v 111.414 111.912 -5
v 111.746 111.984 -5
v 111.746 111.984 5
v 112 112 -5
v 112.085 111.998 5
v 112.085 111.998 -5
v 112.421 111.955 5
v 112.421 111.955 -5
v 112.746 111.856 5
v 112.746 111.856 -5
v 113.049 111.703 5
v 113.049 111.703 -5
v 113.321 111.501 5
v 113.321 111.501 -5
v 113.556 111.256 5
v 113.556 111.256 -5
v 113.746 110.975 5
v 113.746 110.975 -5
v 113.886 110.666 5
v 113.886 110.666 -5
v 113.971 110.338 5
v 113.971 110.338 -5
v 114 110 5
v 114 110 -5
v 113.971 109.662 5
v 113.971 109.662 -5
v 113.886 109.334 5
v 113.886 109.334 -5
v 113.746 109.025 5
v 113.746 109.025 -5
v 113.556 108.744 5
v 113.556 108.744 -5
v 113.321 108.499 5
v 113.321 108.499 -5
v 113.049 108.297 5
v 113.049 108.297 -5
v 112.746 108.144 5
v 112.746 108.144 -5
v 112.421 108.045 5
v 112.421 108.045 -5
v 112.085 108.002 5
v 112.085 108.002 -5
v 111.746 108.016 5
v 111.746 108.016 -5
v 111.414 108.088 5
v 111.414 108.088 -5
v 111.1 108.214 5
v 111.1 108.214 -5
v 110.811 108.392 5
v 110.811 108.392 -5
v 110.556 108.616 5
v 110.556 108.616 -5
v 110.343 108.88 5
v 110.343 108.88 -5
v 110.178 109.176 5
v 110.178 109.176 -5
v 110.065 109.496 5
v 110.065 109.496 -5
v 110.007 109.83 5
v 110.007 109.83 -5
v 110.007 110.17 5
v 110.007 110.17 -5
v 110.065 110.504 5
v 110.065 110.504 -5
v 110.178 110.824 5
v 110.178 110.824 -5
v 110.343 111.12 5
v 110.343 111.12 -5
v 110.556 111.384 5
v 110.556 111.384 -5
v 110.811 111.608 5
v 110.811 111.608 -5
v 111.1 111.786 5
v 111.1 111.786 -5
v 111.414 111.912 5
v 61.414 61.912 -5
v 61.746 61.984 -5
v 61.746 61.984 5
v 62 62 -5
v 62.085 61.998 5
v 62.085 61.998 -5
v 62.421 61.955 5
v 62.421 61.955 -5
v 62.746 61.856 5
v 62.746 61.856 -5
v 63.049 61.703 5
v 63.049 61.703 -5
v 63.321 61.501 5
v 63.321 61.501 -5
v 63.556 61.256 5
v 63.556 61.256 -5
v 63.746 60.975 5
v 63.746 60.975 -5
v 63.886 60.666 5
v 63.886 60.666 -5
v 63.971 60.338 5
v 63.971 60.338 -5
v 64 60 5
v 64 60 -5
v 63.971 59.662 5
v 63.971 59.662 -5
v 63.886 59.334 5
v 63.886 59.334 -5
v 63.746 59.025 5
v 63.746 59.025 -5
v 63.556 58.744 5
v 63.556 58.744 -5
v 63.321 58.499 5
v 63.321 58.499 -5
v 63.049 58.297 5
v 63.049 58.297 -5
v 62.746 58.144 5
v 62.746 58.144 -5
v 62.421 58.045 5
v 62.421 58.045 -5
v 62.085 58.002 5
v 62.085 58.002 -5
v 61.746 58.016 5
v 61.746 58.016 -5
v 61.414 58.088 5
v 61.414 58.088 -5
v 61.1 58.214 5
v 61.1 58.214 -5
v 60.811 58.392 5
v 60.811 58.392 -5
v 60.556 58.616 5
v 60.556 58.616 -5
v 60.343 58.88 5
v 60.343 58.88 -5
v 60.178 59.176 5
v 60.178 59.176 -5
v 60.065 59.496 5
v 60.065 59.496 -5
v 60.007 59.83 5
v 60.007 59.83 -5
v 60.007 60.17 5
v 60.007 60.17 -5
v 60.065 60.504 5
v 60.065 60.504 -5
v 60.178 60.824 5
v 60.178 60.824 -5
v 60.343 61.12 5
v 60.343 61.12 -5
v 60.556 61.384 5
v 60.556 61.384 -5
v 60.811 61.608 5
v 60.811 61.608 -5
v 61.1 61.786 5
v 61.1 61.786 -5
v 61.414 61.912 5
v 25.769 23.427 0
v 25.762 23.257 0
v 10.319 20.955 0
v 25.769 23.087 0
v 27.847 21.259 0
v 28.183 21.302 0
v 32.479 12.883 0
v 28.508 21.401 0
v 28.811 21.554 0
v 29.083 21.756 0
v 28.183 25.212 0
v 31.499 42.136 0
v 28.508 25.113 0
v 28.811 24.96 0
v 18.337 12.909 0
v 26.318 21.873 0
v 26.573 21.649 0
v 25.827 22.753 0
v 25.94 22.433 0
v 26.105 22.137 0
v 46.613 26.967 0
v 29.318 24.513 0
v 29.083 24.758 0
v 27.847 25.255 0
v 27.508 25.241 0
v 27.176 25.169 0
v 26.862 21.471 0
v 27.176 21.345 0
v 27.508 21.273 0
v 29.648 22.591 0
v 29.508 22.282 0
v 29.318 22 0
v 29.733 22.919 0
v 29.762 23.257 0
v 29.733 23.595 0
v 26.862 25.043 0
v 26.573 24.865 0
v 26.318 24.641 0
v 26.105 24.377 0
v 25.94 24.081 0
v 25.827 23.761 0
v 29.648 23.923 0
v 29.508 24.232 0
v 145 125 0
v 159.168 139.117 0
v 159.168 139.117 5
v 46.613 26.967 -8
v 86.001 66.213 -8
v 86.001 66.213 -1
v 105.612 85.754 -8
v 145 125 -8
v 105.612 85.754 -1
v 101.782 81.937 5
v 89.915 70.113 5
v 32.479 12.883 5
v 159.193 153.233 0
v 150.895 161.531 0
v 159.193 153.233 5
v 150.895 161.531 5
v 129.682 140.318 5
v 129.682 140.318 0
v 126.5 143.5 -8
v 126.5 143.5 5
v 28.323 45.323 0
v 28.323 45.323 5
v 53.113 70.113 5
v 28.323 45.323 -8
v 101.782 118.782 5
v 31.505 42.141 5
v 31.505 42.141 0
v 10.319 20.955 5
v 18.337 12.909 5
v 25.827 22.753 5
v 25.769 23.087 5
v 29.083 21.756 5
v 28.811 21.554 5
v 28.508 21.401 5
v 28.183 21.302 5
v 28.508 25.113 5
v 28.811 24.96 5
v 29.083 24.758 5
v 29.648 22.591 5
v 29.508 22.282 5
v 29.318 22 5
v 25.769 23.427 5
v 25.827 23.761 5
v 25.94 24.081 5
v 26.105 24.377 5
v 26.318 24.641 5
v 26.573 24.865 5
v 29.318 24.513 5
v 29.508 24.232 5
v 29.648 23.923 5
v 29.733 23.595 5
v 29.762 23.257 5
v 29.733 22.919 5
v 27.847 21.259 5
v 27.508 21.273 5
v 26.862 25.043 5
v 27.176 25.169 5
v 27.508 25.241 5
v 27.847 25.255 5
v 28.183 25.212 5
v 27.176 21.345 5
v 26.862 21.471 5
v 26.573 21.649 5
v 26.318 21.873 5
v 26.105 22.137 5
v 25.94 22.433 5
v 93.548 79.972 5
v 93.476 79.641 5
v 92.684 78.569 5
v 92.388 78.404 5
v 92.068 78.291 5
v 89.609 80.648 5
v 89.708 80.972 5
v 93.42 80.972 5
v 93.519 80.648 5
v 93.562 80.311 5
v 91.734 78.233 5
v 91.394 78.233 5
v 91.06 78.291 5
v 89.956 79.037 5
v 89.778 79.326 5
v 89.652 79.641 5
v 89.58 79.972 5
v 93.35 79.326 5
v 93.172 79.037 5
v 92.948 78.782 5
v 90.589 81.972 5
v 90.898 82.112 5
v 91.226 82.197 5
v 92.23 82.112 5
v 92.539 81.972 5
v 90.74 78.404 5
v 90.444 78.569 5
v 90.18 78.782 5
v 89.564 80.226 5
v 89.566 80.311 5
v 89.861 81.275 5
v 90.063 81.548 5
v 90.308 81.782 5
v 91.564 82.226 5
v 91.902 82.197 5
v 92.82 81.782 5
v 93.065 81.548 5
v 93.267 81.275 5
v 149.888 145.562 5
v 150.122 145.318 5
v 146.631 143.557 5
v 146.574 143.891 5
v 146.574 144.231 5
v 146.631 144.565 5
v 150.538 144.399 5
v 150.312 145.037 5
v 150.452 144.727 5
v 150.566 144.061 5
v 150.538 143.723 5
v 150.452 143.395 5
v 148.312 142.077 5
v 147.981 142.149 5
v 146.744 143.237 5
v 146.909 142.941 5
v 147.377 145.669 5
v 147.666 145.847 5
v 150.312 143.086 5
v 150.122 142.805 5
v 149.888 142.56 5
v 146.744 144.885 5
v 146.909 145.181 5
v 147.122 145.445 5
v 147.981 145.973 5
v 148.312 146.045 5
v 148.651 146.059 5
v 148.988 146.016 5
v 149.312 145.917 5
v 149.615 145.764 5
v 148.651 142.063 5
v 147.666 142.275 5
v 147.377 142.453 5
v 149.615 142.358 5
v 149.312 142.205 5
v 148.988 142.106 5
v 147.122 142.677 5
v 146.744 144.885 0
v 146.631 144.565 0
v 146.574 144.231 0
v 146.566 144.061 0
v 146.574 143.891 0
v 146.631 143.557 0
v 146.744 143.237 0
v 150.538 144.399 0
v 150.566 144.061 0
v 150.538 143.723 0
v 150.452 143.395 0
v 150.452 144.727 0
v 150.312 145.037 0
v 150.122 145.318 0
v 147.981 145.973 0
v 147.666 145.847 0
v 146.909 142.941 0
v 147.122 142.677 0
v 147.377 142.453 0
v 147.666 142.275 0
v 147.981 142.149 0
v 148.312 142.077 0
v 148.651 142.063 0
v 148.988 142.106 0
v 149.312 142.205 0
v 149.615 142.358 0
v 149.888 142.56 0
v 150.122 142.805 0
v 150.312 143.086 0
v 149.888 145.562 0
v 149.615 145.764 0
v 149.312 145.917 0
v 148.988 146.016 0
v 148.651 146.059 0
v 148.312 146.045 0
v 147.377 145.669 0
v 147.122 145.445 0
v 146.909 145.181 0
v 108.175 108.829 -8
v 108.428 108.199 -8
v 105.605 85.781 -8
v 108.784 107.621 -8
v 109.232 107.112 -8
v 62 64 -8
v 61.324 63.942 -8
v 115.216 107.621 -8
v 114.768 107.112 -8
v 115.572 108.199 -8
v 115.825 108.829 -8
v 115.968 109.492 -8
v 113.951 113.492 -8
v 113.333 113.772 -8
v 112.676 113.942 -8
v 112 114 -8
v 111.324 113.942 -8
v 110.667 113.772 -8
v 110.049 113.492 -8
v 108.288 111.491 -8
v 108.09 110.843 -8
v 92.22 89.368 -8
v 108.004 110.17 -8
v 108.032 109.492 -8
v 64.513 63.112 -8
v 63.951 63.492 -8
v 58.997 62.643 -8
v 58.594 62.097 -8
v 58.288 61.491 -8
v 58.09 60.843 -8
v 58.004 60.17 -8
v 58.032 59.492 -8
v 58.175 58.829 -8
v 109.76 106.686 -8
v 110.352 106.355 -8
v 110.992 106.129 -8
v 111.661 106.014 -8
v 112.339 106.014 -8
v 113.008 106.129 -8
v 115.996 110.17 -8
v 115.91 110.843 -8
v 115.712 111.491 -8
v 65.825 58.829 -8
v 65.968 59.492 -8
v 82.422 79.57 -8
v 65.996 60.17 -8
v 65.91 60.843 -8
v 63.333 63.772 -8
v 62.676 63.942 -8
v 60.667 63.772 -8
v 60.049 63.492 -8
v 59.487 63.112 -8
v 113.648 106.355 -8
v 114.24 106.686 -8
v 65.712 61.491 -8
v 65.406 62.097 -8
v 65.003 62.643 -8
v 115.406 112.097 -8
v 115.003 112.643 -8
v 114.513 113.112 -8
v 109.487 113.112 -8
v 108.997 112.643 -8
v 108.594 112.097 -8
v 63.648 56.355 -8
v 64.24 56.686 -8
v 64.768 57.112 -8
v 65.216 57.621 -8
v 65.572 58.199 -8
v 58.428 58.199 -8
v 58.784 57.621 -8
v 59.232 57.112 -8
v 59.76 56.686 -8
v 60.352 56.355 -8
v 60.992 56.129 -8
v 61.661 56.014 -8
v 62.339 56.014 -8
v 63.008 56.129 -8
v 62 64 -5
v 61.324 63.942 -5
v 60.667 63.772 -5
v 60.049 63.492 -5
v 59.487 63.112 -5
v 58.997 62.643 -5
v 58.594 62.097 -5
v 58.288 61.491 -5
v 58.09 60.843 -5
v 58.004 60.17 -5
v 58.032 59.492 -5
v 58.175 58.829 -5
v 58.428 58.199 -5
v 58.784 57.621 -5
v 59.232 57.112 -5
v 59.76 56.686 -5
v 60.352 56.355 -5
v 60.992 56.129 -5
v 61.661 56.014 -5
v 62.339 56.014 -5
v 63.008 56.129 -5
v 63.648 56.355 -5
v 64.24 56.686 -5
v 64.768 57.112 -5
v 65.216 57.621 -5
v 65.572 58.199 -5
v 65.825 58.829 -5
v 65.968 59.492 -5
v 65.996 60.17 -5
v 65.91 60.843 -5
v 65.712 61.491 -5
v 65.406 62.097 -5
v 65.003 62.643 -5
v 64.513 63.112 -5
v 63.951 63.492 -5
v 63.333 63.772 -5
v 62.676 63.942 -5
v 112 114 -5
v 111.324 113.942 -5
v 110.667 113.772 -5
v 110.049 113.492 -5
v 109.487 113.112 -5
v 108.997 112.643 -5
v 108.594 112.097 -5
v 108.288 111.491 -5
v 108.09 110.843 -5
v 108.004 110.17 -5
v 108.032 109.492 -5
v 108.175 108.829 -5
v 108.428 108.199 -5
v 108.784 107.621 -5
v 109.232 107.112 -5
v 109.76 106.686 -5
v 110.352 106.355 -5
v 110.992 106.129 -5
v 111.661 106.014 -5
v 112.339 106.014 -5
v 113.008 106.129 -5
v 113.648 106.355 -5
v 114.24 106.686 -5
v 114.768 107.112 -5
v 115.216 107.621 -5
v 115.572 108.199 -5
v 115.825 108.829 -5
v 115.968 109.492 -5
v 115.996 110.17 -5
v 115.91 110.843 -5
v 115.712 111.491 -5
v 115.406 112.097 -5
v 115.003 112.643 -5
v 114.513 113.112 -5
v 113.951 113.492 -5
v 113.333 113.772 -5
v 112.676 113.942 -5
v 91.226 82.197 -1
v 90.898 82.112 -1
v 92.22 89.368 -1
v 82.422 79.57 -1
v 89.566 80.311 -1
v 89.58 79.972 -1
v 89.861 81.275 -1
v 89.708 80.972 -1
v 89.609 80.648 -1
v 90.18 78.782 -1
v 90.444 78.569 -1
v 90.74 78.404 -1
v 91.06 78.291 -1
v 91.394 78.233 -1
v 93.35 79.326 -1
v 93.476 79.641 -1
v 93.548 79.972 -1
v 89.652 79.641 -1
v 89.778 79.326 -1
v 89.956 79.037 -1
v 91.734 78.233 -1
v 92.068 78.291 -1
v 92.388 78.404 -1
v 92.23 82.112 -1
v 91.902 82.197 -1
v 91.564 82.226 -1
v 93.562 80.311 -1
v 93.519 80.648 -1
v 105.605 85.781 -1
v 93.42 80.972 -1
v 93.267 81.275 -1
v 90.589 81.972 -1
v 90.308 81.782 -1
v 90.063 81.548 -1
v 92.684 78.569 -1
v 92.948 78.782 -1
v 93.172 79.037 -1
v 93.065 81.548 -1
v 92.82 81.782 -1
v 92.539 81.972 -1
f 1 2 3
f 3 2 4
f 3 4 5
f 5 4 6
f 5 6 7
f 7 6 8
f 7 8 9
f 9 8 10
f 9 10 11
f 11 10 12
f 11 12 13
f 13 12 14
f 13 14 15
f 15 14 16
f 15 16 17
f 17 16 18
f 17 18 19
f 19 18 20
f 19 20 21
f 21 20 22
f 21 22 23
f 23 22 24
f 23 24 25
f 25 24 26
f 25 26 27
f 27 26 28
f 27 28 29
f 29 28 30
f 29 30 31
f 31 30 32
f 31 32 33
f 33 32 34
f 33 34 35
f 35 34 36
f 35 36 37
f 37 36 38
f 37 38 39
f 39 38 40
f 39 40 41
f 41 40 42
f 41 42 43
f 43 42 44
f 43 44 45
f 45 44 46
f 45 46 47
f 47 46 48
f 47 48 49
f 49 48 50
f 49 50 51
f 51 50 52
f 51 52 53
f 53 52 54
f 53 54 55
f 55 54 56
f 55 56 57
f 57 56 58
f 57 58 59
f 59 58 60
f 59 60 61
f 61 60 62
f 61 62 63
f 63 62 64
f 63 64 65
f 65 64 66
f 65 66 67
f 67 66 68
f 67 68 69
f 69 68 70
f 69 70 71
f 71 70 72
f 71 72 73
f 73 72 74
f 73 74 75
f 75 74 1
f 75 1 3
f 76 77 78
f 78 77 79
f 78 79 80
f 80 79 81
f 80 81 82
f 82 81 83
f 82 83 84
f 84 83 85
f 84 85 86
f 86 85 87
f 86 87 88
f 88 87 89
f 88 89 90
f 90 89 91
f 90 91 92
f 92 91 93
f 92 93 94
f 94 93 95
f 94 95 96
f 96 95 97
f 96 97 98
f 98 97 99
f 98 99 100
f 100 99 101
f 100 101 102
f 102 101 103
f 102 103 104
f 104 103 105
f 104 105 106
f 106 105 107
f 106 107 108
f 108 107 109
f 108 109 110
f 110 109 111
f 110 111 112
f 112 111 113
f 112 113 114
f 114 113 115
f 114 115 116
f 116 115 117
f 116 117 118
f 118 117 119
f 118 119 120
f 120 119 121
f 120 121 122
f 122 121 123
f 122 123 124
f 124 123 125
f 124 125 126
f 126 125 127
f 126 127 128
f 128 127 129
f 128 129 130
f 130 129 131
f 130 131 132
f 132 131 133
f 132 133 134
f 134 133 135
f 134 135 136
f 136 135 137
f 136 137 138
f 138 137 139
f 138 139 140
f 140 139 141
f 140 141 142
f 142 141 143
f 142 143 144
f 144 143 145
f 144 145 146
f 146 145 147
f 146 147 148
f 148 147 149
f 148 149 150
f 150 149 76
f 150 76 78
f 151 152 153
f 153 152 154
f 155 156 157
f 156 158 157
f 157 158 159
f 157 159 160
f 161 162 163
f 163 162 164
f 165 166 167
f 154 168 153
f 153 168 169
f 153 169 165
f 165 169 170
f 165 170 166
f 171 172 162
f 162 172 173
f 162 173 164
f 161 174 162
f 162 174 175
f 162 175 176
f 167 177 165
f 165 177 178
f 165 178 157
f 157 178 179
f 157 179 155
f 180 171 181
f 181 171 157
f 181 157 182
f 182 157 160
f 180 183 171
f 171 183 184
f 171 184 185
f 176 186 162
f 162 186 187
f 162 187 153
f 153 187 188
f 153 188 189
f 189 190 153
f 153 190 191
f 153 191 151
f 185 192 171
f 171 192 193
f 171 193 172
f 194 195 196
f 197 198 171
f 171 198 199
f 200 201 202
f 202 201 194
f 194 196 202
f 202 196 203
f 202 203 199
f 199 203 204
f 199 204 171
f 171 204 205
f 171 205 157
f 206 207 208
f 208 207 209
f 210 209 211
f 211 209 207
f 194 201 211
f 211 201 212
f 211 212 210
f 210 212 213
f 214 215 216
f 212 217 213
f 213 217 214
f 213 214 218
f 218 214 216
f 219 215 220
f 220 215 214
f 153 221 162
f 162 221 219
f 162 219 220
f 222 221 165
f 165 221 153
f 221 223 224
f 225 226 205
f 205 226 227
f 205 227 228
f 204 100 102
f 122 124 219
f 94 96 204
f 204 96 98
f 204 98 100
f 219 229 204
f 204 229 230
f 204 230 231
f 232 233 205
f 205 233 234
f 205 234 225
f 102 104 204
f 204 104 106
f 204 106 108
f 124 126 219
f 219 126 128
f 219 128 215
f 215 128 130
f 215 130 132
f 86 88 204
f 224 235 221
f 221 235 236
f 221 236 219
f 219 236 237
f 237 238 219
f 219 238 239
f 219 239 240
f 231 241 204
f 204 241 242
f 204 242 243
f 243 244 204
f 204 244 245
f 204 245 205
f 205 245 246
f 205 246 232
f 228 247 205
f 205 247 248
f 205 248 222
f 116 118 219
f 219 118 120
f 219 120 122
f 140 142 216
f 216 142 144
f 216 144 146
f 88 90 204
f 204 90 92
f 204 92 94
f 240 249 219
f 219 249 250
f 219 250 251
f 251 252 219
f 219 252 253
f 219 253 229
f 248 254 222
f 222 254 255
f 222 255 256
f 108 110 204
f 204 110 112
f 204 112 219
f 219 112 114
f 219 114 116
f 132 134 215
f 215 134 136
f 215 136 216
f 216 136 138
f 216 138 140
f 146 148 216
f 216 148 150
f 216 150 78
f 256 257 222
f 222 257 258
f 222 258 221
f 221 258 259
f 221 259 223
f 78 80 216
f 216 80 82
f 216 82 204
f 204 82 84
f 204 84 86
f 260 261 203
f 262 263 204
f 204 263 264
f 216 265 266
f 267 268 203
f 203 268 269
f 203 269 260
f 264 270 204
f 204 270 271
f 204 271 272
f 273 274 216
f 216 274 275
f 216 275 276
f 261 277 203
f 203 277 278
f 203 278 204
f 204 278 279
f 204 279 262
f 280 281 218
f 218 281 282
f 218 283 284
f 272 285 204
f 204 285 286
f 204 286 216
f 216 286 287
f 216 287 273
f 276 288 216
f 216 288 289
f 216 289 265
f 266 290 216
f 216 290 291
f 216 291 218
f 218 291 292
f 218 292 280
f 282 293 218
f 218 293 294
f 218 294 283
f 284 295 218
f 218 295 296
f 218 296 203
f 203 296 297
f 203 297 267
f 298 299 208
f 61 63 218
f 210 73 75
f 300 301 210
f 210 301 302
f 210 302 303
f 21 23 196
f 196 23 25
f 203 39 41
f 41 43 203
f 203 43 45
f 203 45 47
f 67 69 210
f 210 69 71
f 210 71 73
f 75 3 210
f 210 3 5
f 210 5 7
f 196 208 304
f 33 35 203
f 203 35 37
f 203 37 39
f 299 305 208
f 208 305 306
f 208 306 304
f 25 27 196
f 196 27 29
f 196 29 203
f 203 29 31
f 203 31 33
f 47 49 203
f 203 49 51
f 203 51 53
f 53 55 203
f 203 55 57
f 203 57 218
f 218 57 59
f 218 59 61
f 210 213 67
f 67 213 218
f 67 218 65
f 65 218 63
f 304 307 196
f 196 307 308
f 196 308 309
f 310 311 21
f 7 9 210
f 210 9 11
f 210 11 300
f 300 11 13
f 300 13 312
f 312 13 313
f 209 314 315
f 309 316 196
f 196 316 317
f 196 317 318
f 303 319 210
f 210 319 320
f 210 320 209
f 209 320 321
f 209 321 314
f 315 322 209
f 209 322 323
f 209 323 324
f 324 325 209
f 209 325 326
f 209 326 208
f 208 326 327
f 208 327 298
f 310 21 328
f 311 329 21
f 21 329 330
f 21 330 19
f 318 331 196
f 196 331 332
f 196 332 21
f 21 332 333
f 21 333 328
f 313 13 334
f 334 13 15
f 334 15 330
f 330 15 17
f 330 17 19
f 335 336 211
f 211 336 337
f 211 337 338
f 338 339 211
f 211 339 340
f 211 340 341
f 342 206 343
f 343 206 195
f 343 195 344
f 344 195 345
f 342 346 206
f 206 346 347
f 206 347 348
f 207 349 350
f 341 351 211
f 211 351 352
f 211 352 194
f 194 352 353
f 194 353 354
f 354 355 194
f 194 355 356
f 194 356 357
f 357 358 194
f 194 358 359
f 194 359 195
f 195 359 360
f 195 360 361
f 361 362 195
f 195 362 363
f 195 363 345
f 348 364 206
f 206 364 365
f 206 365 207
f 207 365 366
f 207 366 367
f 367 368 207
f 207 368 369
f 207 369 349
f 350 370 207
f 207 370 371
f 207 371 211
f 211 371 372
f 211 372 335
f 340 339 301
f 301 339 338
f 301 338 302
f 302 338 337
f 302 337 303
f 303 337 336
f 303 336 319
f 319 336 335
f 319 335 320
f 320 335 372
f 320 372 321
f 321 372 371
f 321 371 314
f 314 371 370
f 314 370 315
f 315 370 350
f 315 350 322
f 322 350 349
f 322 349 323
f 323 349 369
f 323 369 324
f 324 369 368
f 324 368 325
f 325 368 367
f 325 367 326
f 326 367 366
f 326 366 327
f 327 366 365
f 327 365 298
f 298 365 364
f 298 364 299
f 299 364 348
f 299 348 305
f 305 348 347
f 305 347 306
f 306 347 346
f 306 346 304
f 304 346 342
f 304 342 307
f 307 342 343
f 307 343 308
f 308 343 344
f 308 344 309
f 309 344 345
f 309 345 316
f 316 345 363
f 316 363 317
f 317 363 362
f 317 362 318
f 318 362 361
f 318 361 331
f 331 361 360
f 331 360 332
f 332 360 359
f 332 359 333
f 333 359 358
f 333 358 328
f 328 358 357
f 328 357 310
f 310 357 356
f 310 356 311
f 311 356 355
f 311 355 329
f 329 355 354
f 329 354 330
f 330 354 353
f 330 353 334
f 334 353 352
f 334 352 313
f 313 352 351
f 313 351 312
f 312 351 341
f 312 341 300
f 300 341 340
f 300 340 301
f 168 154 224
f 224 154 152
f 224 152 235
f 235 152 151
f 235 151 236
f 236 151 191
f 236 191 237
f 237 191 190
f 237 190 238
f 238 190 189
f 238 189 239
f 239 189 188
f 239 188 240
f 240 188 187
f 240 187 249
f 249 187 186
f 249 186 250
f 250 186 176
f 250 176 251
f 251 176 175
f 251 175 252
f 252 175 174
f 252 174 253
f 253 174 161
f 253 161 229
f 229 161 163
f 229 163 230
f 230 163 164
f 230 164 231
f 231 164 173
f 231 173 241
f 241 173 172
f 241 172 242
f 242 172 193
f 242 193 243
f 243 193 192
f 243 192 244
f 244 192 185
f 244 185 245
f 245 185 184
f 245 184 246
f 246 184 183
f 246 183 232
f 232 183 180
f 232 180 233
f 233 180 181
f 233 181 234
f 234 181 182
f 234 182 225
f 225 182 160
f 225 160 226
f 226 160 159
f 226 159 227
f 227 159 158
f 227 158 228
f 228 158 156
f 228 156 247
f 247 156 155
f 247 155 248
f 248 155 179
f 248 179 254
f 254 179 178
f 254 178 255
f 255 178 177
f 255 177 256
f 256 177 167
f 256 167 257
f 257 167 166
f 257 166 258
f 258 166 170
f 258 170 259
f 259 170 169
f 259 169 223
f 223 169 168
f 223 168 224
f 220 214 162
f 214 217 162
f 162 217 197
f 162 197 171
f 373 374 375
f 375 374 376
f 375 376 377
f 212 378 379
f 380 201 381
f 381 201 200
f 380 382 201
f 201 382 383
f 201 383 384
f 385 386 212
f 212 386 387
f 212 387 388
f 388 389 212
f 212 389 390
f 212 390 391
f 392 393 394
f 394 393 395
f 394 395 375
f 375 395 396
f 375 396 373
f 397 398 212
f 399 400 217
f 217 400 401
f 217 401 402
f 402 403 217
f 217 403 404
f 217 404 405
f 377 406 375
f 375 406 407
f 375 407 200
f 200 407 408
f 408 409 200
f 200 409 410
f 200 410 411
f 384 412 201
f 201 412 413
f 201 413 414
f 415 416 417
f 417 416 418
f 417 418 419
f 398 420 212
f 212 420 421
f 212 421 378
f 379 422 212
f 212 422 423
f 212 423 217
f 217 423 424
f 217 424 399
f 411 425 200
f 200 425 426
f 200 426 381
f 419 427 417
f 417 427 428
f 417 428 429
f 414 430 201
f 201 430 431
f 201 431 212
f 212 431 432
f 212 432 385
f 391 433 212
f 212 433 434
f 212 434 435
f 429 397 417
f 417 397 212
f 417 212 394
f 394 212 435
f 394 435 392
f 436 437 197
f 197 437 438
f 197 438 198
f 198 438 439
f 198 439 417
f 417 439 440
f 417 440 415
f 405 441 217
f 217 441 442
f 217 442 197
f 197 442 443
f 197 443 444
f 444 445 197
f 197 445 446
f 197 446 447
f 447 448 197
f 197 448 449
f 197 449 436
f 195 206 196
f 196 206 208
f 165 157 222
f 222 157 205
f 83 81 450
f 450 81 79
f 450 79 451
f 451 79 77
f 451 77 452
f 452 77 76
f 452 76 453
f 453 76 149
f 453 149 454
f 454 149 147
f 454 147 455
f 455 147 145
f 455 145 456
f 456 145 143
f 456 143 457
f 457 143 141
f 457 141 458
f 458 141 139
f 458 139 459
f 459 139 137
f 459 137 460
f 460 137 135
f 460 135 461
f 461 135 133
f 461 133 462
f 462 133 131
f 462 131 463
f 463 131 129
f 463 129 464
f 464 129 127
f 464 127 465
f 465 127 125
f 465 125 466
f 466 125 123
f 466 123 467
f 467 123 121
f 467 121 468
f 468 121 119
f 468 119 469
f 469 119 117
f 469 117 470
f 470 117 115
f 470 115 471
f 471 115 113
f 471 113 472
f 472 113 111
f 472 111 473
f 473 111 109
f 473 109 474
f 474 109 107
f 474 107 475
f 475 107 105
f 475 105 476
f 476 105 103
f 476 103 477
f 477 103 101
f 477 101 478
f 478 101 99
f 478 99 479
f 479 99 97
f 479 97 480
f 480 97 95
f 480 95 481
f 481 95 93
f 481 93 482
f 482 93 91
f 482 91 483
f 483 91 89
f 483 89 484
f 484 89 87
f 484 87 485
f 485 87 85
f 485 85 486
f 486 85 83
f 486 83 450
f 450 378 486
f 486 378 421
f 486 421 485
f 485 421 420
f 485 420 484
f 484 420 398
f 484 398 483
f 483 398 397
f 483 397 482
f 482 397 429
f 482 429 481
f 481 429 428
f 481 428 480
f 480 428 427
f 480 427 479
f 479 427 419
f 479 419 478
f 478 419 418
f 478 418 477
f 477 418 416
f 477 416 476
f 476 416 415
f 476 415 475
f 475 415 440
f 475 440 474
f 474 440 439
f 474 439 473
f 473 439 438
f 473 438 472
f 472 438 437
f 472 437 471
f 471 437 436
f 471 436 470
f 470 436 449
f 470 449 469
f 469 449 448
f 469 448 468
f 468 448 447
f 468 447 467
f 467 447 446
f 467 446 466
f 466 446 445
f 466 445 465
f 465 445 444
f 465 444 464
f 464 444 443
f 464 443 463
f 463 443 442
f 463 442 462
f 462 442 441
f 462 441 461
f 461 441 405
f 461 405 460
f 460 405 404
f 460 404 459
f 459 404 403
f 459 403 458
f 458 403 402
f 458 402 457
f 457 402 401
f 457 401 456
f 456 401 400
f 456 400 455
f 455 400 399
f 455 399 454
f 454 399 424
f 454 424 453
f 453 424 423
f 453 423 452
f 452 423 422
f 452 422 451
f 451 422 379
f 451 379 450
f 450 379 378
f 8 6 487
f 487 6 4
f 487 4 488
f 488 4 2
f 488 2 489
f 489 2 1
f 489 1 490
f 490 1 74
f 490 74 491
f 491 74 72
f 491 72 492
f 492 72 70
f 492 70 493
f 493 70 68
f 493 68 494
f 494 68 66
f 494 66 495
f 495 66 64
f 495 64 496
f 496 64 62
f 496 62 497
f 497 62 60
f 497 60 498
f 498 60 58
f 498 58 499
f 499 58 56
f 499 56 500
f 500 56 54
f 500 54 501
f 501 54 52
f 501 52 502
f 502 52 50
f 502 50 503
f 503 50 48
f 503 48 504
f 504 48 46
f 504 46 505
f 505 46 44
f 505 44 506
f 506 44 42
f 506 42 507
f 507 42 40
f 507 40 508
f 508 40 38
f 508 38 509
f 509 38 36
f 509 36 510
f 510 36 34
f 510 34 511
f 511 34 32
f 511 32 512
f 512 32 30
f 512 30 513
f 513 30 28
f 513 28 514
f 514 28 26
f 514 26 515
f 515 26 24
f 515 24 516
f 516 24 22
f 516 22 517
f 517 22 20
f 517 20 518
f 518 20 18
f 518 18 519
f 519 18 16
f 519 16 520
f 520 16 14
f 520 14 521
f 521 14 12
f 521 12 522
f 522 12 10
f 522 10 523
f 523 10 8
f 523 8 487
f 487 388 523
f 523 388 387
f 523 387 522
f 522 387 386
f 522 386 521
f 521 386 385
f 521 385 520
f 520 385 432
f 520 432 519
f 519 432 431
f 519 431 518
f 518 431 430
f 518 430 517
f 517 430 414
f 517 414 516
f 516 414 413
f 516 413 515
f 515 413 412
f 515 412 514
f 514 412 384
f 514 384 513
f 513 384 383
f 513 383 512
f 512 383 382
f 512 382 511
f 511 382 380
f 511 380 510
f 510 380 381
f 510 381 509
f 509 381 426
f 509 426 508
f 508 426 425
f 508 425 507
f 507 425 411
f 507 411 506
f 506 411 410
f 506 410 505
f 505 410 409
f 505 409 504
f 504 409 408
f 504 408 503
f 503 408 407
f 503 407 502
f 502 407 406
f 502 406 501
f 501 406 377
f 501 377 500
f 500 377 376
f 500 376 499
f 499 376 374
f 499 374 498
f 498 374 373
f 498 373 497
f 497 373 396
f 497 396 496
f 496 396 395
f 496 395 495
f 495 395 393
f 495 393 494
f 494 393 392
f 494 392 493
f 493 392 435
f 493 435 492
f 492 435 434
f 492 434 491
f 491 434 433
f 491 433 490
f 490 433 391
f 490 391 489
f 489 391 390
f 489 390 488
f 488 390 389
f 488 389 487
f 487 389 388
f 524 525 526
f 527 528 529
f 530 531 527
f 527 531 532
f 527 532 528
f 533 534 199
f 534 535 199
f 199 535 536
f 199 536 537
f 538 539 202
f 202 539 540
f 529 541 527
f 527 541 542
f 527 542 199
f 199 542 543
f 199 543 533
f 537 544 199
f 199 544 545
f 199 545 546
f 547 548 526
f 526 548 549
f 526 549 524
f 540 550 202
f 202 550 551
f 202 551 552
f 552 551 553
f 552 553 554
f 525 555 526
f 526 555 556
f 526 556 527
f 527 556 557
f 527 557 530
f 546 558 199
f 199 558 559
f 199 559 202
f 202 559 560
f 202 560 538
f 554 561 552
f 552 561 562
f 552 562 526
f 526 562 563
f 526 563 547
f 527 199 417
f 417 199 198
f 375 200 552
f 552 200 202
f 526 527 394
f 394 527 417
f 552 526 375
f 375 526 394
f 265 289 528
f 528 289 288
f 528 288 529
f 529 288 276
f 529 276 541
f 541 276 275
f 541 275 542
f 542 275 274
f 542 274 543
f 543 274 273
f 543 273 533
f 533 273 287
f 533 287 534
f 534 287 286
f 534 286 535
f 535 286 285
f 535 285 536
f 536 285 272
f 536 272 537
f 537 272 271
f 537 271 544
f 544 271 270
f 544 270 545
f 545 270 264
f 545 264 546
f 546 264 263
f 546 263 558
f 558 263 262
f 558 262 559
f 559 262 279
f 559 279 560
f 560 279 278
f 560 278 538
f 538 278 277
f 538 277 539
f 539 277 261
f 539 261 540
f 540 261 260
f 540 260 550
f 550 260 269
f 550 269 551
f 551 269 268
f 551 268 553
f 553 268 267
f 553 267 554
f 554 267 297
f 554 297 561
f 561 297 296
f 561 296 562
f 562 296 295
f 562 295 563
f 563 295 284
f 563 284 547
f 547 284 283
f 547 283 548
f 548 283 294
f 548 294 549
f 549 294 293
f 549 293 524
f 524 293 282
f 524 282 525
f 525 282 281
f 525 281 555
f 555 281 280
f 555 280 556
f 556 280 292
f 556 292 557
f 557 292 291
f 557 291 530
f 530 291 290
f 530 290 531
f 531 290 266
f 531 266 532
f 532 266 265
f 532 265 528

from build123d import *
from OCP.BRepFilletAPI import BRepFilletAPI_MakeChamfer

# Parameters (mm, degrees)
BOSS_EXTRUDE1_DEPTH = 5
SKETCH2_R           = 2
CUT_EXTRUDE1_DEPTH  = 15
BOSS_EXTRUDE2_DEPTH = 8
CHAMFER1_SIZE       = 10
CHAMFER1_SIZE2      = 9.982043079
CUT_EXTRUDE2_REACH  = 229.165
SKETCH4_R           = 2
SKETCH5_R           = 4
CUT_EXTRUDE3_DEPTH  = 3
CUT_EXTRUDE4_DEPTH  = 7
SKETCH7_R           = 2
CUT_EXTRUDE5_DEPTH  = 17


with BuildPart() as part:
    # Sketch1 → Boss-Extrude1 (new body)
    with BuildSketch(Plane.XY):
        Polygon((46.646446609, 27), (145, 125.000009716), (166.251364342, 146.174983473), (150.895154423, 161.531193392), (129.681985373, 140.318024342), (126.500004858, 143.500004858), (28.323223305, 45.323223305), (31.50520382, 42.141242789), (10.319228506, 20.955267476), (25.395082268, 5.825026243), align=None)
    extrude(amount=BOSS_EXTRUDE1_DEPTH)

    # Sketch2 → Cut-Extrude1 (cut)
    with BuildSketch(Plane.XY.offset(5)):
        with Locations((27.762116716, 23.256912896)):
            Circle(SKETCH2_R)
        with Locations((148.566315267, 144.061111447)):
            Circle(SKETCH2_R)
    extrude(amount=-CUT_EXTRUDE1_DEPTH, mode=Mode.SUBTRACT)

    # Sketch3 → Boss-Extrude2 (add)
    with BuildSketch(Plane(origin=(0, 0, 0), x_dir=(-1, 0, 0), z_dir=(0, 0, -1))):
        Polygon((-28.323223305, 45.323223305), (-46.613395502, 26.967067699), (-145, 125.000009716), (-126.500004858, 143.500004858), align=None)
    extrude(amount=BOSS_EXTRUDE2_DEPTH)

    # Chamfer1: one chamfer whose edges measure the first distance from different faces: ONE call of the kernel's chamfer builder (chamfer() names one face for all edges)
    chamfer1_edges_1 = [part.edges().sort_by_distance(p)[0] for p in [
        (25.395082268, 5.825026243, 2.5),
    ]]
    chamfer1_edges_2 = [part.edges().sort_by_distance(p)[0] for p in [
        (166.251364342, 146.174983473, 2.5),
    ]]
    chamfer1_side_2 = [part.faces().sort_by_distance(p)[0] for p in [
        (95.814501721, 75.991314625, -0.930462506),
    ]]
    chamfer1 = BRepFilletAPI_MakeChamfer(part.part.solid().wrapped)
    for e in chamfer1_edges_1:
        chamfer1.Add(CHAMFER1_SIZE, e.wrapped)
    for e in chamfer1_edges_2:
        chamfer1.Add(CHAMFER1_SIZE, CHAMFER1_SIZE2, e.wrapped, chamfer1_side_2[0].wrapped)  # the first distance lies on this face
    add(Compound.cast(chamfer1.Shape()), mode=Mode.REPLACE)

    # Sketch4 → Cut-Extrude2 (cut, up to next)
    with BuildSketch(Plane.XY.offset(5), mode=Mode.PRIVATE) as cut_extrude2_sk1:
        with Locations((62, 60)):
            Circle(SKETCH4_R)
    cut_extrude2_tool1 = extrude(cut_extrude2_sk1.sketch, amount=-CUT_EXTRUDE2_REACH, mode=Mode.PRIVATE) & part.part
    # Sketch4 → Cut-Extrude2 (cut, up to next)
    with BuildSketch(Plane.XY.offset(5), mode=Mode.PRIVATE) as cut_extrude2_sk2:
        with Locations((112, 110)):
            Circle(SKETCH4_R)
    cut_extrude2_tool2 = extrude(cut_extrude2_sk2.sketch, amount=-CUT_EXTRUDE2_REACH, mode=Mode.PRIVATE) & part.part
    add(cut_extrude2_tool1.solids().sort_by_distance((62, 60, 5))[0], mode=Mode.SUBTRACT)
    add(cut_extrude2_tool2.solids().sort_by_distance((112, 110, 5))[0], mode=Mode.SUBTRACT)

    # Sketch5 → Cut-Extrude3 (cut)
    with BuildSketch(Plane(origin=(0, 0, -8), x_dir=(-1, 0, 0), z_dir=(0, 0, -1))):
        with Locations(Location((-62, 60, 0), (0, 0, 90))):
            Circle(SKETCH5_R)
        with Locations(Location((-112, 110, 0), (0, 0, 90))):
            Circle(SKETCH5_R)
    extrude(amount=-CUT_EXTRUDE3_DEPTH, mode=Mode.SUBTRACT)

    # Sketch6 → Cut-Extrude4 (cut)
    with BuildSketch(Plane(origin=(0, 0, -8), x_dir=(-1, 0, 0), z_dir=(0, 0, -1))):
        Polygon((-92.220395862, 89.367799567), (-105.604656722, 85.781497678), (-109.190958611, 72.397236819), (-99.39299964, 62.599277847), (-86.00873878, 66.185579736), (-82.422436891, 79.569840596), align=None)
    extrude(amount=-CUT_EXTRUDE4_DEPTH, mode=Mode.SUBTRACT)

    # Sketch7 → Cut-Extrude5 (cut)
    with BuildSketch(Plane(origin=(0, 0, -1), x_dir=(-1, 0, 0), z_dir=(0, 0, -1))):
        with Locations(Location((-91.564057064, 80.226179394, 0), (0, 0, 90))):
            Circle(SKETCH7_R)
    extrude(amount=-CUT_EXTRUDE5_DEPTH, mode=Mode.SUBTRACT)


solid = part.part
